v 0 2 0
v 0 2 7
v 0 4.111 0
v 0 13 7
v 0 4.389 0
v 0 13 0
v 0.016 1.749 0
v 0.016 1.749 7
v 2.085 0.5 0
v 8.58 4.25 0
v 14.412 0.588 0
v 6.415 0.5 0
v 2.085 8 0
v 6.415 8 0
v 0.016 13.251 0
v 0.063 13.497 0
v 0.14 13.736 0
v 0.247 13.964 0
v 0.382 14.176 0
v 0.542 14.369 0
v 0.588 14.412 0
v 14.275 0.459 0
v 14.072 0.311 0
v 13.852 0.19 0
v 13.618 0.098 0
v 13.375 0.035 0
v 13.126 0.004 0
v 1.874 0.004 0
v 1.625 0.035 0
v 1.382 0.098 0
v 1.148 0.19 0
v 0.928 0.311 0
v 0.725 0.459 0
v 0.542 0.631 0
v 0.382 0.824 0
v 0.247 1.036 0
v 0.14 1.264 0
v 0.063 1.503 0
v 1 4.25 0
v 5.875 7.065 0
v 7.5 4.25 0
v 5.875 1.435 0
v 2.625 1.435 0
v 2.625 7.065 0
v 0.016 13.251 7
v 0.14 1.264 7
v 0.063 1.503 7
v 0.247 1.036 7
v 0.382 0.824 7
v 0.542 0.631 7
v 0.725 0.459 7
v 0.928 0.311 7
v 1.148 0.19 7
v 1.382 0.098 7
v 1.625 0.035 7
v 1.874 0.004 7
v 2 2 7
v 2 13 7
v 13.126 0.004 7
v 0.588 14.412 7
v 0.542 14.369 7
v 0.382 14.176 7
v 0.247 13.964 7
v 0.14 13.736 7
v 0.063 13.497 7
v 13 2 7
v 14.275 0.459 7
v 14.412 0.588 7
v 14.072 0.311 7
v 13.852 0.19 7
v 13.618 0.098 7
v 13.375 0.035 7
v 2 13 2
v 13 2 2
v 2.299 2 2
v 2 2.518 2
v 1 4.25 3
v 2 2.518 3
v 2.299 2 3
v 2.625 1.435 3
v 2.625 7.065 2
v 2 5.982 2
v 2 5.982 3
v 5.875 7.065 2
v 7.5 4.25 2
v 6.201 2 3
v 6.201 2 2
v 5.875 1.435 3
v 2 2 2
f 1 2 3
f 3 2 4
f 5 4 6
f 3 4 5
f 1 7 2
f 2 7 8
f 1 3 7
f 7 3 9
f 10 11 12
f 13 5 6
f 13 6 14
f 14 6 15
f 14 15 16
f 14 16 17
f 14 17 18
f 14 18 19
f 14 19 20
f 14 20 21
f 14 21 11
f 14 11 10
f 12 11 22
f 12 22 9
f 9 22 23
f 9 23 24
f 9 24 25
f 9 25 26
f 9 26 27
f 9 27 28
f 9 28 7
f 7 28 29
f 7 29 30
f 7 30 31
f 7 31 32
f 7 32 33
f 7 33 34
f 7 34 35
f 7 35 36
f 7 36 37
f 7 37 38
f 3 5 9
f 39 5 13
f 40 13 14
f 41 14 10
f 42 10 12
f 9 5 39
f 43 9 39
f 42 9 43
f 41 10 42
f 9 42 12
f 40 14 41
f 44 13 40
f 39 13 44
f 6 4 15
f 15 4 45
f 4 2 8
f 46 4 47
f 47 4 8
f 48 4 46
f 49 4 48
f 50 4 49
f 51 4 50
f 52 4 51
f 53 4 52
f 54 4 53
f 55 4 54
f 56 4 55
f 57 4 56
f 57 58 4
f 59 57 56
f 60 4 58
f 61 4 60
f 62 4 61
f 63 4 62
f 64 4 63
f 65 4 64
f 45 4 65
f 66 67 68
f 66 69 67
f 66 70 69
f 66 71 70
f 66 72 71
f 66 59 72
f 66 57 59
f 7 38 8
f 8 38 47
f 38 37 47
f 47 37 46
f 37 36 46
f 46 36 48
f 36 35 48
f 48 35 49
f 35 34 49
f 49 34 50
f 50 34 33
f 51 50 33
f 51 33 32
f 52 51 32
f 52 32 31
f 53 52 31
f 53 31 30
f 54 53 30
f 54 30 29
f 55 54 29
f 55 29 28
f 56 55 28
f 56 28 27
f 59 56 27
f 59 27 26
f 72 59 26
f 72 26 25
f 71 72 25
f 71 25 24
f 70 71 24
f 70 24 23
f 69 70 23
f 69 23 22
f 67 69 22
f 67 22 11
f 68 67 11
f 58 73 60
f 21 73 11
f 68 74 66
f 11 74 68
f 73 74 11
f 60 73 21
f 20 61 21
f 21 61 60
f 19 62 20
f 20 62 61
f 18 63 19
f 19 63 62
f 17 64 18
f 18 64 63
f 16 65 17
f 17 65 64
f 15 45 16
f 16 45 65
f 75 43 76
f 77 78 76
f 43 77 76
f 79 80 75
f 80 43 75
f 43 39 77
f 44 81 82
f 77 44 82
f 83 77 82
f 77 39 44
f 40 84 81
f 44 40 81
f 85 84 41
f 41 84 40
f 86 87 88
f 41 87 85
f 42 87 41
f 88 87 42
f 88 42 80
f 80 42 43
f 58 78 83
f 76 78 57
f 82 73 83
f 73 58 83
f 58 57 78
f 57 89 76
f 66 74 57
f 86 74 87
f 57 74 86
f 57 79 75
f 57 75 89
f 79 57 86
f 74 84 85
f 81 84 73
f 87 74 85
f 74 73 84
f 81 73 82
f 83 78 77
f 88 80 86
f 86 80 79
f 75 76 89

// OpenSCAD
// One Hand Bed Leveling - MakerFarm i3 Prusa Captive Nuts 
//
//  My MakerFarm i3 8" kit came with the i3 Prusa Bed Leveling Kit
//  http://www.makerfarm.com/index.php/i3-prusa-bed-leveling-kit.html
//
//  The heat bed leveling was still a pain in the neck
//  as it required two hands to hold a wrench and allen 
//  for the adjustments.  I decided to print some corner
//  brackets to hold the nuts.  The MakerFarm i3 Prusa Bed 
//  Leveling Kit has m3 cap heads and m3 locking nuts.
//  The m3 locking nuts are a press fit into this part.
//  Press from the bottom up until flush.
//
//  I printed them in PLA .25
//
//  This script is a mash up of stuff I found on Thingiverse

// Round corners for Openscad - Tutorial
// by WilliamAAdams, published	 Jun 15, 2011
// https://www.thingiverse.com/thing:9347

use <MCAD/boxes.scad>;

module miniround(size, radius)
{
$fn=50;
x = size[0]-radius*2;
y = size[1]-radius*2;

minkowski()
{
cube(size=[x,y,size[2]]);
cylinder(r=radius);
// Using a sphere is possible, but will kill performance
//sphere(r=radius);
}
}

// File: 3d_print_screw_hole_test.scad
// Author: Mark Heywood alias Airtripper
// Airtripper Extruder Filament Force Sensor Bracket
// by Airtripper May 2013
// Copyright � 2013 Airtripper
// http://www.airtripper.com
// Licensed Attribution-NonCommercial-ShareAlike 3.0 Unported. 
// Last edit: 26/09/2013

/* [Global] */

//  - Select part to view/print from list
view_part = 0;	// [0:design, 1:head_up, 2:head_down, 3:horizontal]

//  - Screw head diameter - flat side to flat side on hex nut or bolt head
head = 6.5;		
//  - Screw head type - [6] for hex head and [50] or more for round head
type = 6;			
//  - Screw size diameter
size = 3;		
//  - Screw size diameter smoothness
smoothness = 50;	
//  - Screw size length - not including screw head
length = 4;			
//  - Screw head length
cap = 2;			
//  - Block border thickness between screw head and block edge
border = 1;			
//  - Print layer thickness - only required for head down print
layer = 0.25;			

translate([0,0,-4]) rotate([0,0,0]) screw_block();

//######################### Screw Block ##########################

// screw_block();

module screw_block() {
	difference() {
		translate([2,2,4])
		miniround([15,15,6],2);

		translate([2,2,6])
		cube([15,15,6]);

		translate([0,15,4])
		rotate(-45)
		cube([30,30,10]);

    	translate([border+(head/2),border+(head/2),-1-layer]) cylinder(length+1, r=size/2, $fn=smoothness);	// screw size
		translate([border+(head/2),border+(head/2),length]) cylinder(cap+1, r=head/2, $fn=type);	// screw head/cap
		translate([border+(head/2),border+(head/2),length+cap-4]) color("red") cylinder(2, r1=(head/2)/cos(180/type), r2=((head/2)+.5)/cos(180/type), $fn=type); // screw head/cap taper
	}

}














// end
